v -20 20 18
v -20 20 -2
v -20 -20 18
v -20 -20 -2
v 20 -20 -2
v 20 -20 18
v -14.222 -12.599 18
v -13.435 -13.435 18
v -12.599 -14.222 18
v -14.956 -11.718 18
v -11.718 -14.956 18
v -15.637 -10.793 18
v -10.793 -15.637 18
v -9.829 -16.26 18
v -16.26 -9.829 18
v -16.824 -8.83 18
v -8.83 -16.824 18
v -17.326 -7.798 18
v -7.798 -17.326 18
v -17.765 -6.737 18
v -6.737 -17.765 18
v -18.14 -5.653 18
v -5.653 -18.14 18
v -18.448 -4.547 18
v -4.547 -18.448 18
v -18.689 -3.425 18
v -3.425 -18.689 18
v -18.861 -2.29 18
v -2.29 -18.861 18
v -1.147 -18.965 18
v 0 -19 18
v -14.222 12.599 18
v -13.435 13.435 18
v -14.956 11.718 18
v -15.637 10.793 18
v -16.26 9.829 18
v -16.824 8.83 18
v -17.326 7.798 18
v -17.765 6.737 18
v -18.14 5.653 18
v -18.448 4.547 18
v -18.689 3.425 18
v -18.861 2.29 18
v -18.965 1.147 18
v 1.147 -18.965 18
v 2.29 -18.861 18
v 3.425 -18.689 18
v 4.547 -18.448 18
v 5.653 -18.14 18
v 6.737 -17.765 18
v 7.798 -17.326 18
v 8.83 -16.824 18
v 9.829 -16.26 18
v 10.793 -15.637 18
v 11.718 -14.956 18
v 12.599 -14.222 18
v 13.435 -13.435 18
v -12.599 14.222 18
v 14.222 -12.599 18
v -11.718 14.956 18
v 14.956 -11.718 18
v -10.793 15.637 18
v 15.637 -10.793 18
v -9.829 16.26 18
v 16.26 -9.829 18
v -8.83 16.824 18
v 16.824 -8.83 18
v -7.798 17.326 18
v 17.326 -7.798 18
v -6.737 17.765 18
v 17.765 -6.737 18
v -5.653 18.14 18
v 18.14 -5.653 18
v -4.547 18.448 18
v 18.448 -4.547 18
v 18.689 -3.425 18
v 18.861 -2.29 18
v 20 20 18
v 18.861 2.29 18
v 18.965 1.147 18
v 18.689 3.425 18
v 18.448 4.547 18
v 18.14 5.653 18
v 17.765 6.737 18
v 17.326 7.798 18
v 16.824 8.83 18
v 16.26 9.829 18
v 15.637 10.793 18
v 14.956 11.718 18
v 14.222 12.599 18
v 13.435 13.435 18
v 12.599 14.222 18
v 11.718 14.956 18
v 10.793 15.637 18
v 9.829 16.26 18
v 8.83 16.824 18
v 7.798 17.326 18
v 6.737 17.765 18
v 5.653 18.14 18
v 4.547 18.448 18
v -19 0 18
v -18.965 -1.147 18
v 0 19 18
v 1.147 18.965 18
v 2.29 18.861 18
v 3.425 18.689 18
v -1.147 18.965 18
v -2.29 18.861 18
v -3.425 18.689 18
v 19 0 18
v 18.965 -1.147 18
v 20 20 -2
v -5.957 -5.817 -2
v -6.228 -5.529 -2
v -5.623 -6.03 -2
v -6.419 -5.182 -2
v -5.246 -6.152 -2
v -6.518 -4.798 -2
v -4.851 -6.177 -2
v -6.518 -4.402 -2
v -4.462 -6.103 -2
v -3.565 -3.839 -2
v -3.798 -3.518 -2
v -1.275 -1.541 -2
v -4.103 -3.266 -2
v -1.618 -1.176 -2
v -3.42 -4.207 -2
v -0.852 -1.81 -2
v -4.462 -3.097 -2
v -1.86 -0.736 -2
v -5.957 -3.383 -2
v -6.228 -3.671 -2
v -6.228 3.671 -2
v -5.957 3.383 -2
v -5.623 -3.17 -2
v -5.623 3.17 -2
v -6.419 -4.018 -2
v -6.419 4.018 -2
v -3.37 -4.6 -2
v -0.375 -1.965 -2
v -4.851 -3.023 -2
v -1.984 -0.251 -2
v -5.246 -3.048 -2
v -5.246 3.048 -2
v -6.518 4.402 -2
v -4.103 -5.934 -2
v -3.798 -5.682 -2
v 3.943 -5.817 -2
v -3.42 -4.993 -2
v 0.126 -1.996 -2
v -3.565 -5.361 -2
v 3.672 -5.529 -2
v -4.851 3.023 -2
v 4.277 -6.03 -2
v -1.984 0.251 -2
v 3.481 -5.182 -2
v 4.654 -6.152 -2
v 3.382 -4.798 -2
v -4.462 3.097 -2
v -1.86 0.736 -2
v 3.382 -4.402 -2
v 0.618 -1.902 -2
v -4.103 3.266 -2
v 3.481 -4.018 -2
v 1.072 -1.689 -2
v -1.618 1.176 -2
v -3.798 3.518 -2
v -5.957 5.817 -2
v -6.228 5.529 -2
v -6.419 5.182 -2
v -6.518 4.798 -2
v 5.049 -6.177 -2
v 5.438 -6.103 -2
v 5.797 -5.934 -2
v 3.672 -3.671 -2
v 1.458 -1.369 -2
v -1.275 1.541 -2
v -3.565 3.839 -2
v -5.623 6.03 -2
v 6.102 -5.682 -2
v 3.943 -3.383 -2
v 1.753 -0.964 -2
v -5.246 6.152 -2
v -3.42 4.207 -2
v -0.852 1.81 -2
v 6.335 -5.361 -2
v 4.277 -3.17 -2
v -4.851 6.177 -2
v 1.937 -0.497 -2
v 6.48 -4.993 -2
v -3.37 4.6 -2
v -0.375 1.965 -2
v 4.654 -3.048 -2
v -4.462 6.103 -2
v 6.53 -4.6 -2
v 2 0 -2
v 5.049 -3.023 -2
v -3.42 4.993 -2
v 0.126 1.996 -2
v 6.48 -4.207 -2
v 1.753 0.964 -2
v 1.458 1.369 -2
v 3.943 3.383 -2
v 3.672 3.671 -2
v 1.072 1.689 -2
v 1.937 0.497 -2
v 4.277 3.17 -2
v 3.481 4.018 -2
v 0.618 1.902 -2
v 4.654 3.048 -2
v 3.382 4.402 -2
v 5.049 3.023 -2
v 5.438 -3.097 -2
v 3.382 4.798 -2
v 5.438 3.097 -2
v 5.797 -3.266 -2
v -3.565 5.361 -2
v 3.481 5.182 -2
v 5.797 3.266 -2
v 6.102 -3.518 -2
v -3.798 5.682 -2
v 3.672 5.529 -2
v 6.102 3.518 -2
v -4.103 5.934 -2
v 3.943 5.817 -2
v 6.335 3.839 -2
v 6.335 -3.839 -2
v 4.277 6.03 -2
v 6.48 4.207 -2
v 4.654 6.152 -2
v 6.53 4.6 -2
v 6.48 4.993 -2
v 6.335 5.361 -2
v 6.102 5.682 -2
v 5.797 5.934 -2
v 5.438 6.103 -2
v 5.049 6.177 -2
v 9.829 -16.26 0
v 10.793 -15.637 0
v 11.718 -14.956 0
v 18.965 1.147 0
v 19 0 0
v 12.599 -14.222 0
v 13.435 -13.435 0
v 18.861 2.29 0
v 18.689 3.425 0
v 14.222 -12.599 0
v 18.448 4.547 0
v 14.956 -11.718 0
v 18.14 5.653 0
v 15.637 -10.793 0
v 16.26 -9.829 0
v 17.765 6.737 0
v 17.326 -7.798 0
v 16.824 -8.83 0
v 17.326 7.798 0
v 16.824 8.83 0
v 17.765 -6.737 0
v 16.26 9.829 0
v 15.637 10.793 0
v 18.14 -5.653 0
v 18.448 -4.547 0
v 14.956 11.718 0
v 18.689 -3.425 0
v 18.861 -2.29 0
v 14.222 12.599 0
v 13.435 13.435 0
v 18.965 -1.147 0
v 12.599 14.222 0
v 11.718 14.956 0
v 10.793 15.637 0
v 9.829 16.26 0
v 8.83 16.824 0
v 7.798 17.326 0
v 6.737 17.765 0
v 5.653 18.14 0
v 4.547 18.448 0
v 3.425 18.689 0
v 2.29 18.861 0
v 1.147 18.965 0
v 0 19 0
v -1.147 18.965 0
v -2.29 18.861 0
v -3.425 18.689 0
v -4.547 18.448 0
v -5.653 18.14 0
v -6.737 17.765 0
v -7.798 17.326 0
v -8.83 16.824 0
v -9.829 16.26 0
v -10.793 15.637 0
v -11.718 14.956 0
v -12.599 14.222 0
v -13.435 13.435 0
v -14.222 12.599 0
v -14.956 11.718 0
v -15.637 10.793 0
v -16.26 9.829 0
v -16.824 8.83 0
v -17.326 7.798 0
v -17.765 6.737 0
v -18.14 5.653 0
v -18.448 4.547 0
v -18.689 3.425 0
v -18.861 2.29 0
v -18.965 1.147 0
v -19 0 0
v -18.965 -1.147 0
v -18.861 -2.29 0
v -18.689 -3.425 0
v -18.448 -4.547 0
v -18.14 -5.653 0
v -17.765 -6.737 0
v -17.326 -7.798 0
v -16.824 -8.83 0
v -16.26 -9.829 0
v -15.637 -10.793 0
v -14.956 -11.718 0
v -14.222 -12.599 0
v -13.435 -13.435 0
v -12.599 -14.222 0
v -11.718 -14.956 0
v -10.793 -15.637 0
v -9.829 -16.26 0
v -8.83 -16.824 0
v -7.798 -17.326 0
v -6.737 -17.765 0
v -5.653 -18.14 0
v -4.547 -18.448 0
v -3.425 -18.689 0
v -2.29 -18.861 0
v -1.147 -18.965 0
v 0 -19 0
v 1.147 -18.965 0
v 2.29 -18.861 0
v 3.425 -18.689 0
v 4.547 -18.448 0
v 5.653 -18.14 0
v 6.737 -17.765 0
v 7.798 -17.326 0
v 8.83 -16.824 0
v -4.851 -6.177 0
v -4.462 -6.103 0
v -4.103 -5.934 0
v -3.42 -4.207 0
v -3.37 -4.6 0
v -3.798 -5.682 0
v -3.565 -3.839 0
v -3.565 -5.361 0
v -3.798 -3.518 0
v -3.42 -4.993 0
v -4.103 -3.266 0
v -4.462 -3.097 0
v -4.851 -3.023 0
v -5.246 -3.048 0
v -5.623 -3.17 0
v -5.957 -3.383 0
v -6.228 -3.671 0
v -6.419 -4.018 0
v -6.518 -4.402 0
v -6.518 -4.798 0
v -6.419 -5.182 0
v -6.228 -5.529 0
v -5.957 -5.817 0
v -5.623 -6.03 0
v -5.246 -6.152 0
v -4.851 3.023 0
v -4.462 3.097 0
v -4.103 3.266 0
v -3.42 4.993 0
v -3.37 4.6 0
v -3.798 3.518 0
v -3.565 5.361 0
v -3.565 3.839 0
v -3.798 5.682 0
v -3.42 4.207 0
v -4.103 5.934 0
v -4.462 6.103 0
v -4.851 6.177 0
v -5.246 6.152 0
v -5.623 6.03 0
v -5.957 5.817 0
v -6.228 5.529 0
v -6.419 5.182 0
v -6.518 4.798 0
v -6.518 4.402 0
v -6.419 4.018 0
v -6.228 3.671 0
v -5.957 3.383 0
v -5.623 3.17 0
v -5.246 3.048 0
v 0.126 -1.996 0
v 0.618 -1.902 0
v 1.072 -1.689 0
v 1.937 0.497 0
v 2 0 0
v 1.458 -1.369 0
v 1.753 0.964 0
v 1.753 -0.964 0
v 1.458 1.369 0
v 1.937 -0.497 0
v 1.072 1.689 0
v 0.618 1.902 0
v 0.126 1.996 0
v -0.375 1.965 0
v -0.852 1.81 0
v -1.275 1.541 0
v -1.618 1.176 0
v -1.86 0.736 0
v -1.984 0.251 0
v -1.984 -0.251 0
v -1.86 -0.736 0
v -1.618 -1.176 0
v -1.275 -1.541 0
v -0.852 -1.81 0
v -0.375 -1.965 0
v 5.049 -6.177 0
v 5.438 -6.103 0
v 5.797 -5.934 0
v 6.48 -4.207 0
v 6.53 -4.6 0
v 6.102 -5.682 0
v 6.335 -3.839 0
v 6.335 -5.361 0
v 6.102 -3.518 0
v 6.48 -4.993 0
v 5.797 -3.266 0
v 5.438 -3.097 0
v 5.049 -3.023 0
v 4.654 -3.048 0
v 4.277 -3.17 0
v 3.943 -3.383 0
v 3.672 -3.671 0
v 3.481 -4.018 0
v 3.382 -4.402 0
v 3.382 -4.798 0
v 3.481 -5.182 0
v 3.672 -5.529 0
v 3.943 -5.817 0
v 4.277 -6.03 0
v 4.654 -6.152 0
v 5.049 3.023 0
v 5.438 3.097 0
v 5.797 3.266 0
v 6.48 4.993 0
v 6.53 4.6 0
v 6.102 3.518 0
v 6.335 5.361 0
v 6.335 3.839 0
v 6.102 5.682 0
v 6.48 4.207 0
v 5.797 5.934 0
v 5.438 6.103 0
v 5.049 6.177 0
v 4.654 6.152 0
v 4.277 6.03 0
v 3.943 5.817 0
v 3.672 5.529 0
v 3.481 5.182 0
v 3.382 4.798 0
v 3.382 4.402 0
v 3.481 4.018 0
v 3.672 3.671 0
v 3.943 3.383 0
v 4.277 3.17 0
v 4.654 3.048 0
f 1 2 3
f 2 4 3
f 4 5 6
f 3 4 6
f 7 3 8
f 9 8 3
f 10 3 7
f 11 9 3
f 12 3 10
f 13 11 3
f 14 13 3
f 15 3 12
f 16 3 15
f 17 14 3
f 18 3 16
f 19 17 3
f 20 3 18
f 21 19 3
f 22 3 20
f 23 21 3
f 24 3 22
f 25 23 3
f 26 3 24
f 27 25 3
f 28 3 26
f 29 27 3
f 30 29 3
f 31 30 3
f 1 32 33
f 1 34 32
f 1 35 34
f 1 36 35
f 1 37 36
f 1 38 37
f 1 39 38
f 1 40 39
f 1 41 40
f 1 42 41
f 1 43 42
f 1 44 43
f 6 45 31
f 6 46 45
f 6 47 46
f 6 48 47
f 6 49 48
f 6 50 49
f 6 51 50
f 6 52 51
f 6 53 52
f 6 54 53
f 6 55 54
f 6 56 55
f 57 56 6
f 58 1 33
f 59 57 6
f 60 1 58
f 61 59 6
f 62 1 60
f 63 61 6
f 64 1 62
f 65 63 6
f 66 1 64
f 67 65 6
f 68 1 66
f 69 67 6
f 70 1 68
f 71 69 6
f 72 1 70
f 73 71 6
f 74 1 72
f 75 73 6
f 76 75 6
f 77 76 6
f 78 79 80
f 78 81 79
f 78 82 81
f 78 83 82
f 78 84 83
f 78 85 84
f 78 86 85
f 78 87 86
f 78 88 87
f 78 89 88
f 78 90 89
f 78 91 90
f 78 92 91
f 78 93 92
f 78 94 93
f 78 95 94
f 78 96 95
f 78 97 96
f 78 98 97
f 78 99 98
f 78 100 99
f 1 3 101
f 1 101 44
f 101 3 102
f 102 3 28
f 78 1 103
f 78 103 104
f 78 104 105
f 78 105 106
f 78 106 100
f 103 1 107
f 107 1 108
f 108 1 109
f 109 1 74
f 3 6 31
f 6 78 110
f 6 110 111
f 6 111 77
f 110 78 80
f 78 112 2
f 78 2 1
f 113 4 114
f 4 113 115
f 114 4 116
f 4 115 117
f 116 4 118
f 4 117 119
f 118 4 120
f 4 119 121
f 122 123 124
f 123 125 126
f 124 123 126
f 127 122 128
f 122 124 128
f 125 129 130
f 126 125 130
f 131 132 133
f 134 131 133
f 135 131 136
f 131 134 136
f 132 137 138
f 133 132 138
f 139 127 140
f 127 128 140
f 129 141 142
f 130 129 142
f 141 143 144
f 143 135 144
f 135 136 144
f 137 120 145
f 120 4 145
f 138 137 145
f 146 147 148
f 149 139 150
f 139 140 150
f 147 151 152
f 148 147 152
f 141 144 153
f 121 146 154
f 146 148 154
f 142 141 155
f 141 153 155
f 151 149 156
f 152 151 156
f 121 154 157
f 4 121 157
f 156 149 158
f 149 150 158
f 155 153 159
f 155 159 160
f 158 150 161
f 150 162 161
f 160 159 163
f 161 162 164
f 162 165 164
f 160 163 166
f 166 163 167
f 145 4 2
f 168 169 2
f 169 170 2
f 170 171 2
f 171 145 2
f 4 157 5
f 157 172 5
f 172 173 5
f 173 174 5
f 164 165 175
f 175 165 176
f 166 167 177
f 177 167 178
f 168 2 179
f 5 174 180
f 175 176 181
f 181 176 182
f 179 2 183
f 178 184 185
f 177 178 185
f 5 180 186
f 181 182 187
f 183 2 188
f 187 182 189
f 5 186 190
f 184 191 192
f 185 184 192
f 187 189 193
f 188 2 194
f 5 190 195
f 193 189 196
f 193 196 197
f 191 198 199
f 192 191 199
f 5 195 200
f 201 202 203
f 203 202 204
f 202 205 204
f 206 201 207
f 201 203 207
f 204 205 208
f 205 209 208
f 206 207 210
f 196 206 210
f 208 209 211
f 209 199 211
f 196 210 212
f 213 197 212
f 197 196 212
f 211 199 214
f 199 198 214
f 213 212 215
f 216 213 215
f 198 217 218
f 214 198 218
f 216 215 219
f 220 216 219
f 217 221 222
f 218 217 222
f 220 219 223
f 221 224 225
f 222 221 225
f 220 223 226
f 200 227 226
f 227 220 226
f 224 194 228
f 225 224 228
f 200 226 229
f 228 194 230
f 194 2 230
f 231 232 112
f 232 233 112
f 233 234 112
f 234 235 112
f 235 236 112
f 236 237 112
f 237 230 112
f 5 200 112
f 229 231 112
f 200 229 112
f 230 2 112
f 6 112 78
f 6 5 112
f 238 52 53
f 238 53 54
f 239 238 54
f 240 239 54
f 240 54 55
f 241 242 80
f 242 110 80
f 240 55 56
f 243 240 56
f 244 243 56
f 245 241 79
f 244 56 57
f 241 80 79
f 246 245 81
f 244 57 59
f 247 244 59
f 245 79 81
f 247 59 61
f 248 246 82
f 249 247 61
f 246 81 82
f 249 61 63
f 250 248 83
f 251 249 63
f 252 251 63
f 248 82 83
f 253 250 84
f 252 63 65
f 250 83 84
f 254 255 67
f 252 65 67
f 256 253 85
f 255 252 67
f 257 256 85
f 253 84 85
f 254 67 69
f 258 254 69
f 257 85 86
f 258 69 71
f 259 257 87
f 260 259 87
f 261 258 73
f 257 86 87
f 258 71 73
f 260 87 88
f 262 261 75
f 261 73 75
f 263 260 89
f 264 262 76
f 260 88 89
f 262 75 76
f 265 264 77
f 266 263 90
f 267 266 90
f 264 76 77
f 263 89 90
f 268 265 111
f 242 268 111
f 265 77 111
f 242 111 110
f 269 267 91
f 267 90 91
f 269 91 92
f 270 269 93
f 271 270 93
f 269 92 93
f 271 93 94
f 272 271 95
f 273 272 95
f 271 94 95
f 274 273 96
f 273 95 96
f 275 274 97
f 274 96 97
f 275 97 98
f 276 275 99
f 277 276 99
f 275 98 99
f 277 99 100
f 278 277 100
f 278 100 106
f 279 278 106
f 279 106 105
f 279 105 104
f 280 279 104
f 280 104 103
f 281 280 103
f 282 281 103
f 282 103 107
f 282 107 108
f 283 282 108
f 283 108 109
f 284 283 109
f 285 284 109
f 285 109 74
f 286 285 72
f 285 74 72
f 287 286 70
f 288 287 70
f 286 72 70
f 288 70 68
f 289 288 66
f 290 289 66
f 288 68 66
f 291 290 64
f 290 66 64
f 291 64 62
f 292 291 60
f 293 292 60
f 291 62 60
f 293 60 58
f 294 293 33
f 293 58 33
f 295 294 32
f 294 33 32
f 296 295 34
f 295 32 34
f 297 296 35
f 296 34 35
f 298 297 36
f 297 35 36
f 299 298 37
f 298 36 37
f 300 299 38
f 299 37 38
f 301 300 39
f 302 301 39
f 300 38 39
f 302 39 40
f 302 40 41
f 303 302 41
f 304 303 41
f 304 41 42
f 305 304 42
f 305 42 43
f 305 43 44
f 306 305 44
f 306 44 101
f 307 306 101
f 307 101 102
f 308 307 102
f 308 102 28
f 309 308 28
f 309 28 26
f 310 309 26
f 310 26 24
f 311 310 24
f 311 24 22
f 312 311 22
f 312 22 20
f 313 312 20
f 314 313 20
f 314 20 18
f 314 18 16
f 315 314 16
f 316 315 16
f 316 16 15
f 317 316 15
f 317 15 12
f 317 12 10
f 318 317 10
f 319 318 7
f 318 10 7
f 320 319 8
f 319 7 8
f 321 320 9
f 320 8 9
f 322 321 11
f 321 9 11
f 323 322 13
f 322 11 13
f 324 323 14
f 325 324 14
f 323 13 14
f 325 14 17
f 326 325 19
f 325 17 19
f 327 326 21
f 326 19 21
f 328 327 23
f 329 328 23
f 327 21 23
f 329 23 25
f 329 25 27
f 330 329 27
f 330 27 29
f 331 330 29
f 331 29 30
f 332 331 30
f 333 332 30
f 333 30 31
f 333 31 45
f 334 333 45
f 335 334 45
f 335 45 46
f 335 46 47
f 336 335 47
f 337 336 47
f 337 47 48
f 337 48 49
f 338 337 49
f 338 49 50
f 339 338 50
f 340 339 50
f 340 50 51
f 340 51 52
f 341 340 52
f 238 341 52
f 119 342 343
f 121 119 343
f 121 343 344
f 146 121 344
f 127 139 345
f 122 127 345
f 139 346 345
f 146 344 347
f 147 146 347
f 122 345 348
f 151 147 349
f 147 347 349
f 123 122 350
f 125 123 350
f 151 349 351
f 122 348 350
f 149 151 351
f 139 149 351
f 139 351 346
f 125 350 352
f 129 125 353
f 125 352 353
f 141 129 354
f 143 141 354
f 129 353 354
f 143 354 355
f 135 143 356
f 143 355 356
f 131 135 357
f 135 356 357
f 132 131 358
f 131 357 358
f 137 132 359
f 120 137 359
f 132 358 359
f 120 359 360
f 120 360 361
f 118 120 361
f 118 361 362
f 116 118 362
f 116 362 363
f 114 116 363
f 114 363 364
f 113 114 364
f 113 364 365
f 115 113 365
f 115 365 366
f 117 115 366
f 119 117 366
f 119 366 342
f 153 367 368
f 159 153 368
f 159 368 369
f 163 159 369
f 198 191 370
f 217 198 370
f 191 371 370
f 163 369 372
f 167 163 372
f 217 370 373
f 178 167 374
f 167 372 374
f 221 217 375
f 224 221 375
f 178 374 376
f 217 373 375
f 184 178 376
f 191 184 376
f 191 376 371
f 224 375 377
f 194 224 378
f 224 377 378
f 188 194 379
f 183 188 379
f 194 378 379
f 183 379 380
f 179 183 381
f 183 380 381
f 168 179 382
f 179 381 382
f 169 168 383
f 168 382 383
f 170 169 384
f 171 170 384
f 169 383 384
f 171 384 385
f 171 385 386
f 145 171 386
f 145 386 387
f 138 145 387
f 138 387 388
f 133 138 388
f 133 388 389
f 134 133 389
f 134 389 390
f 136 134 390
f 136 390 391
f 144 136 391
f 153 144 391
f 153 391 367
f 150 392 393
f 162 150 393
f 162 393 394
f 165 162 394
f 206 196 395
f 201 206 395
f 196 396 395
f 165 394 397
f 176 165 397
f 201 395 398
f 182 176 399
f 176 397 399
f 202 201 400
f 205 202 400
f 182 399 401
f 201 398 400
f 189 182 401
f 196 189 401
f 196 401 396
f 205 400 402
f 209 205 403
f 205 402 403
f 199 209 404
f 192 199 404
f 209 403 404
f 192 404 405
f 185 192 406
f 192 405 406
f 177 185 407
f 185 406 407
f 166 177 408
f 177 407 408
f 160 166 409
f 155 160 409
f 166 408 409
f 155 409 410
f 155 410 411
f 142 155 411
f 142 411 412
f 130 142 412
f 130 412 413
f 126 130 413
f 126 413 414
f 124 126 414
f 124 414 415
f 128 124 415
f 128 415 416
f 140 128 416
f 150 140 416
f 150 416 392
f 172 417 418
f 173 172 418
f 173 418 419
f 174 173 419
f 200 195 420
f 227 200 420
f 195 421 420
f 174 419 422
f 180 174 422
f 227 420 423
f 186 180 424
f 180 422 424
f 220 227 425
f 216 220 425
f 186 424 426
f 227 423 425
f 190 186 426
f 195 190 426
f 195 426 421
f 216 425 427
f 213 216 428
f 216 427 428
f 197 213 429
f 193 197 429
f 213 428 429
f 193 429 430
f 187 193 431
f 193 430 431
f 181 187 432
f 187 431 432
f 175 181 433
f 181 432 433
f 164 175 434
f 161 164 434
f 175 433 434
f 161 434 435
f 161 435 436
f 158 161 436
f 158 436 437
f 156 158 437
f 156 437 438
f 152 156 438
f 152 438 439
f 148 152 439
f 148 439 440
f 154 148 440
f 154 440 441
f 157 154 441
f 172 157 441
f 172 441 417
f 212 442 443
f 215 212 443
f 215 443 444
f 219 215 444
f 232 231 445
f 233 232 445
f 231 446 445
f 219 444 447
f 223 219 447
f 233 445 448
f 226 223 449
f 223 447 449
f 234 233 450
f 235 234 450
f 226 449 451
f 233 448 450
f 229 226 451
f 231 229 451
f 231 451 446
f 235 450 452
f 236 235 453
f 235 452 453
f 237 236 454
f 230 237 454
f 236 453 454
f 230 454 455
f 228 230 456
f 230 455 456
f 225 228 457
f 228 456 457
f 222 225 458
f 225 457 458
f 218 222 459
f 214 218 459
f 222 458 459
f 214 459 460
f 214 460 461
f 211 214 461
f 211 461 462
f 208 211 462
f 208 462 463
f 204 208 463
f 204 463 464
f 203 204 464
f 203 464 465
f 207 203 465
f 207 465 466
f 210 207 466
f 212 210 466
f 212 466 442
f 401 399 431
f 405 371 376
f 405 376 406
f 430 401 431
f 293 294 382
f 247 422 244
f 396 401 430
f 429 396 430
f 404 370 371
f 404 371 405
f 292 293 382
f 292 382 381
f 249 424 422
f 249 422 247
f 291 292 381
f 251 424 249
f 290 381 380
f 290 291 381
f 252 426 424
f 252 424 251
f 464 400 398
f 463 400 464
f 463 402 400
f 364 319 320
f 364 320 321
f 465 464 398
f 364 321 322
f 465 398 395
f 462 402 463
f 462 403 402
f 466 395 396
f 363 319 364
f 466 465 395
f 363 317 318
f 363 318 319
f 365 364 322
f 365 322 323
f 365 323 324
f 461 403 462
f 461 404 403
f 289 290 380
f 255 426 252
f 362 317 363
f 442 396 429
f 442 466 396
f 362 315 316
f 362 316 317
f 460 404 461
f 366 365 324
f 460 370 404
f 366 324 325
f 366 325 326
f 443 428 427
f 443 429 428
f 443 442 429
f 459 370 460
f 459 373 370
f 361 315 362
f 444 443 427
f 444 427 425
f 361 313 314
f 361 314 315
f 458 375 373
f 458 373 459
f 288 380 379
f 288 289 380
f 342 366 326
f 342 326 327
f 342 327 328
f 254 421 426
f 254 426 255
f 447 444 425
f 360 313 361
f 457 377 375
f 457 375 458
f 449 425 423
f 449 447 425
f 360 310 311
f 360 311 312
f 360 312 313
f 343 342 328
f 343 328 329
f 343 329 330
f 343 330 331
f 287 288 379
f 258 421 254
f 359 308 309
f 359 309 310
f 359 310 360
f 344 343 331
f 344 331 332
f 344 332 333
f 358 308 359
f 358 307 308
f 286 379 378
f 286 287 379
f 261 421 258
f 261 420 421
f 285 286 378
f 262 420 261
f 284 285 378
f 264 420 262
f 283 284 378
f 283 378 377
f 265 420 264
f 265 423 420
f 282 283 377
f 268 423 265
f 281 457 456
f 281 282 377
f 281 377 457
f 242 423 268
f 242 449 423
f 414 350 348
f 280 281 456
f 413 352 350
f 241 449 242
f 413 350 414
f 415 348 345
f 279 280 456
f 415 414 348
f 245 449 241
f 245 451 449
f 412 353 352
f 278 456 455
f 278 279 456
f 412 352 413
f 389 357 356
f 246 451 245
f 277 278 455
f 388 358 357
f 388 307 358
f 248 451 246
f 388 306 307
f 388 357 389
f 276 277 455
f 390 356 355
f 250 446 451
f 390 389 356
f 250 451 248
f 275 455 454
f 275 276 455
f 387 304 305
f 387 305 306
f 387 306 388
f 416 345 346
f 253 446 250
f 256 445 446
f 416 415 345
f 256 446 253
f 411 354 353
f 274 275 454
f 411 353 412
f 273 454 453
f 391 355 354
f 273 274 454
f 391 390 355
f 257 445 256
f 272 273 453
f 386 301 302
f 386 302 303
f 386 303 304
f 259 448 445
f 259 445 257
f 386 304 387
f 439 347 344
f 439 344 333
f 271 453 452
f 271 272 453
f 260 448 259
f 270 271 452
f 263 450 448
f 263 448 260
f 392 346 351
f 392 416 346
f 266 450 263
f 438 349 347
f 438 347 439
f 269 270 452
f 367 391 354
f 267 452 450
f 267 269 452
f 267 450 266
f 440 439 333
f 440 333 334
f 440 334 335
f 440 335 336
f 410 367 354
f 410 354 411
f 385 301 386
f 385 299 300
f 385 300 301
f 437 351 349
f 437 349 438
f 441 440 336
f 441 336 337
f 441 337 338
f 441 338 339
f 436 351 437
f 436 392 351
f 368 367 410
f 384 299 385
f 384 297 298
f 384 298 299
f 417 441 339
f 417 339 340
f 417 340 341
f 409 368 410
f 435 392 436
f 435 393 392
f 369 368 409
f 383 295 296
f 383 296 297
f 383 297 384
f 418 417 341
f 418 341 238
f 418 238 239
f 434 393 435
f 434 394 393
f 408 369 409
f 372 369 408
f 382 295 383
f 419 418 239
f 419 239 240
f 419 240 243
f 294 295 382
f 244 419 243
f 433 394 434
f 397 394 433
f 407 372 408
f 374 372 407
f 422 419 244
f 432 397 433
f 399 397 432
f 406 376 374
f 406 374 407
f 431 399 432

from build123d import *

# Parameters (mm, degrees)
CYLINDER005_R     = 1.58
CYLINDER005_DEPTH = 20
CYLINDER001_R     = 2
CYLINDER001_DEPTH = 20
CYLINDER002_R     = 1.58
CYLINDER002_DEPTH = 20
CYLINDER003_R     = 1.58
CYLINDER003_DEPTH = 20
CYLINDER004_R     = 1.58
CYLINDER004_DEPTH = 20
CYLINDER_R        = 19
CYLINDER_DEPTH    = 19
BOX_W             = 40
BOX_H             = 40
BOX_DEPTH         = 20


with BuildPart() as cylinder005:
    # Cylinder005 → Cylinder005 (new body)
    with BuildSketch(Plane(origin=(4.95, 4.6, -2), x_dir=(1, 0, 0), z_dir=(0, 0, 1))):
        Circle(CYLINDER005_R)
    extrude(amount=CYLINDER005_DEPTH)


with BuildPart() as cylinder001:
    # Cylinder001 → Cylinder001 (new body)
    with BuildSketch(Plane.XY.offset(-2)):
        Circle(CYLINDER001_R)
    extrude(amount=CYLINDER001_DEPTH)


with BuildPart() as cylinder002:
    # Cylinder002 → Cylinder002 (new body)
    with BuildSketch(Plane(origin=(-4.95, 4.6, -2), x_dir=(1, 0, 0), z_dir=(0, 0, 1))):
        Circle(CYLINDER002_R)
    extrude(amount=CYLINDER002_DEPTH)


with BuildPart() as cylinder003:
    # Cylinder003 → Cylinder003 (new body)
    with BuildSketch(Plane(origin=(4.95, -4.6, -2), x_dir=(1, 0, 0), z_dir=(0, 0, 1))):
        Circle(CYLINDER003_R)
    extrude(amount=CYLINDER003_DEPTH)


with BuildPart() as cylinder004:
    # Cylinder004 → Cylinder004 (new body)
    with BuildSketch(Plane(origin=(-4.95, -4.6, -2), x_dir=(1, 0, 0), z_dir=(0, 0, 1))):
        Circle(CYLINDER004_R)
    extrude(amount=CYLINDER004_DEPTH)


with BuildPart() as cylinder:
    # Cylinder → Cylinder (new body)
    with BuildSketch(Plane.XY):
        Circle(CYLINDER_R)
    extrude(amount=CYLINDER_DEPTH)


with BuildPart() as cut005:
    # Box → Box (new body)
    with BuildSketch(Plane(origin=(-20, -20, -2), x_dir=(1, 0, 0), z_dir=(0, 0, 1))):
        with Locations((20, 20)):
            Rectangle(BOX_W, BOX_H)
    extrude(amount=BOX_DEPTH)

    # Cut: cut Cylinder
    add(cylinder.part, mode=Mode.SUBTRACT)

    # Cut001: cut Cylinder004
    add(cylinder004.part, mode=Mode.SUBTRACT)

    # Cut002: cut Cylinder003
    add(cylinder003.part, mode=Mode.SUBTRACT)

    # Cut003: cut Cylinder002
    add(cylinder002.part, mode=Mode.SUBTRACT)

    # Cut004: cut Cylinder001
    add(cylinder001.part, mode=Mode.SUBTRACT)

    # Cut005: cut Cylinder005
    add(cylinder005.part, mode=Mode.SUBTRACT)


solid = cut005.part
